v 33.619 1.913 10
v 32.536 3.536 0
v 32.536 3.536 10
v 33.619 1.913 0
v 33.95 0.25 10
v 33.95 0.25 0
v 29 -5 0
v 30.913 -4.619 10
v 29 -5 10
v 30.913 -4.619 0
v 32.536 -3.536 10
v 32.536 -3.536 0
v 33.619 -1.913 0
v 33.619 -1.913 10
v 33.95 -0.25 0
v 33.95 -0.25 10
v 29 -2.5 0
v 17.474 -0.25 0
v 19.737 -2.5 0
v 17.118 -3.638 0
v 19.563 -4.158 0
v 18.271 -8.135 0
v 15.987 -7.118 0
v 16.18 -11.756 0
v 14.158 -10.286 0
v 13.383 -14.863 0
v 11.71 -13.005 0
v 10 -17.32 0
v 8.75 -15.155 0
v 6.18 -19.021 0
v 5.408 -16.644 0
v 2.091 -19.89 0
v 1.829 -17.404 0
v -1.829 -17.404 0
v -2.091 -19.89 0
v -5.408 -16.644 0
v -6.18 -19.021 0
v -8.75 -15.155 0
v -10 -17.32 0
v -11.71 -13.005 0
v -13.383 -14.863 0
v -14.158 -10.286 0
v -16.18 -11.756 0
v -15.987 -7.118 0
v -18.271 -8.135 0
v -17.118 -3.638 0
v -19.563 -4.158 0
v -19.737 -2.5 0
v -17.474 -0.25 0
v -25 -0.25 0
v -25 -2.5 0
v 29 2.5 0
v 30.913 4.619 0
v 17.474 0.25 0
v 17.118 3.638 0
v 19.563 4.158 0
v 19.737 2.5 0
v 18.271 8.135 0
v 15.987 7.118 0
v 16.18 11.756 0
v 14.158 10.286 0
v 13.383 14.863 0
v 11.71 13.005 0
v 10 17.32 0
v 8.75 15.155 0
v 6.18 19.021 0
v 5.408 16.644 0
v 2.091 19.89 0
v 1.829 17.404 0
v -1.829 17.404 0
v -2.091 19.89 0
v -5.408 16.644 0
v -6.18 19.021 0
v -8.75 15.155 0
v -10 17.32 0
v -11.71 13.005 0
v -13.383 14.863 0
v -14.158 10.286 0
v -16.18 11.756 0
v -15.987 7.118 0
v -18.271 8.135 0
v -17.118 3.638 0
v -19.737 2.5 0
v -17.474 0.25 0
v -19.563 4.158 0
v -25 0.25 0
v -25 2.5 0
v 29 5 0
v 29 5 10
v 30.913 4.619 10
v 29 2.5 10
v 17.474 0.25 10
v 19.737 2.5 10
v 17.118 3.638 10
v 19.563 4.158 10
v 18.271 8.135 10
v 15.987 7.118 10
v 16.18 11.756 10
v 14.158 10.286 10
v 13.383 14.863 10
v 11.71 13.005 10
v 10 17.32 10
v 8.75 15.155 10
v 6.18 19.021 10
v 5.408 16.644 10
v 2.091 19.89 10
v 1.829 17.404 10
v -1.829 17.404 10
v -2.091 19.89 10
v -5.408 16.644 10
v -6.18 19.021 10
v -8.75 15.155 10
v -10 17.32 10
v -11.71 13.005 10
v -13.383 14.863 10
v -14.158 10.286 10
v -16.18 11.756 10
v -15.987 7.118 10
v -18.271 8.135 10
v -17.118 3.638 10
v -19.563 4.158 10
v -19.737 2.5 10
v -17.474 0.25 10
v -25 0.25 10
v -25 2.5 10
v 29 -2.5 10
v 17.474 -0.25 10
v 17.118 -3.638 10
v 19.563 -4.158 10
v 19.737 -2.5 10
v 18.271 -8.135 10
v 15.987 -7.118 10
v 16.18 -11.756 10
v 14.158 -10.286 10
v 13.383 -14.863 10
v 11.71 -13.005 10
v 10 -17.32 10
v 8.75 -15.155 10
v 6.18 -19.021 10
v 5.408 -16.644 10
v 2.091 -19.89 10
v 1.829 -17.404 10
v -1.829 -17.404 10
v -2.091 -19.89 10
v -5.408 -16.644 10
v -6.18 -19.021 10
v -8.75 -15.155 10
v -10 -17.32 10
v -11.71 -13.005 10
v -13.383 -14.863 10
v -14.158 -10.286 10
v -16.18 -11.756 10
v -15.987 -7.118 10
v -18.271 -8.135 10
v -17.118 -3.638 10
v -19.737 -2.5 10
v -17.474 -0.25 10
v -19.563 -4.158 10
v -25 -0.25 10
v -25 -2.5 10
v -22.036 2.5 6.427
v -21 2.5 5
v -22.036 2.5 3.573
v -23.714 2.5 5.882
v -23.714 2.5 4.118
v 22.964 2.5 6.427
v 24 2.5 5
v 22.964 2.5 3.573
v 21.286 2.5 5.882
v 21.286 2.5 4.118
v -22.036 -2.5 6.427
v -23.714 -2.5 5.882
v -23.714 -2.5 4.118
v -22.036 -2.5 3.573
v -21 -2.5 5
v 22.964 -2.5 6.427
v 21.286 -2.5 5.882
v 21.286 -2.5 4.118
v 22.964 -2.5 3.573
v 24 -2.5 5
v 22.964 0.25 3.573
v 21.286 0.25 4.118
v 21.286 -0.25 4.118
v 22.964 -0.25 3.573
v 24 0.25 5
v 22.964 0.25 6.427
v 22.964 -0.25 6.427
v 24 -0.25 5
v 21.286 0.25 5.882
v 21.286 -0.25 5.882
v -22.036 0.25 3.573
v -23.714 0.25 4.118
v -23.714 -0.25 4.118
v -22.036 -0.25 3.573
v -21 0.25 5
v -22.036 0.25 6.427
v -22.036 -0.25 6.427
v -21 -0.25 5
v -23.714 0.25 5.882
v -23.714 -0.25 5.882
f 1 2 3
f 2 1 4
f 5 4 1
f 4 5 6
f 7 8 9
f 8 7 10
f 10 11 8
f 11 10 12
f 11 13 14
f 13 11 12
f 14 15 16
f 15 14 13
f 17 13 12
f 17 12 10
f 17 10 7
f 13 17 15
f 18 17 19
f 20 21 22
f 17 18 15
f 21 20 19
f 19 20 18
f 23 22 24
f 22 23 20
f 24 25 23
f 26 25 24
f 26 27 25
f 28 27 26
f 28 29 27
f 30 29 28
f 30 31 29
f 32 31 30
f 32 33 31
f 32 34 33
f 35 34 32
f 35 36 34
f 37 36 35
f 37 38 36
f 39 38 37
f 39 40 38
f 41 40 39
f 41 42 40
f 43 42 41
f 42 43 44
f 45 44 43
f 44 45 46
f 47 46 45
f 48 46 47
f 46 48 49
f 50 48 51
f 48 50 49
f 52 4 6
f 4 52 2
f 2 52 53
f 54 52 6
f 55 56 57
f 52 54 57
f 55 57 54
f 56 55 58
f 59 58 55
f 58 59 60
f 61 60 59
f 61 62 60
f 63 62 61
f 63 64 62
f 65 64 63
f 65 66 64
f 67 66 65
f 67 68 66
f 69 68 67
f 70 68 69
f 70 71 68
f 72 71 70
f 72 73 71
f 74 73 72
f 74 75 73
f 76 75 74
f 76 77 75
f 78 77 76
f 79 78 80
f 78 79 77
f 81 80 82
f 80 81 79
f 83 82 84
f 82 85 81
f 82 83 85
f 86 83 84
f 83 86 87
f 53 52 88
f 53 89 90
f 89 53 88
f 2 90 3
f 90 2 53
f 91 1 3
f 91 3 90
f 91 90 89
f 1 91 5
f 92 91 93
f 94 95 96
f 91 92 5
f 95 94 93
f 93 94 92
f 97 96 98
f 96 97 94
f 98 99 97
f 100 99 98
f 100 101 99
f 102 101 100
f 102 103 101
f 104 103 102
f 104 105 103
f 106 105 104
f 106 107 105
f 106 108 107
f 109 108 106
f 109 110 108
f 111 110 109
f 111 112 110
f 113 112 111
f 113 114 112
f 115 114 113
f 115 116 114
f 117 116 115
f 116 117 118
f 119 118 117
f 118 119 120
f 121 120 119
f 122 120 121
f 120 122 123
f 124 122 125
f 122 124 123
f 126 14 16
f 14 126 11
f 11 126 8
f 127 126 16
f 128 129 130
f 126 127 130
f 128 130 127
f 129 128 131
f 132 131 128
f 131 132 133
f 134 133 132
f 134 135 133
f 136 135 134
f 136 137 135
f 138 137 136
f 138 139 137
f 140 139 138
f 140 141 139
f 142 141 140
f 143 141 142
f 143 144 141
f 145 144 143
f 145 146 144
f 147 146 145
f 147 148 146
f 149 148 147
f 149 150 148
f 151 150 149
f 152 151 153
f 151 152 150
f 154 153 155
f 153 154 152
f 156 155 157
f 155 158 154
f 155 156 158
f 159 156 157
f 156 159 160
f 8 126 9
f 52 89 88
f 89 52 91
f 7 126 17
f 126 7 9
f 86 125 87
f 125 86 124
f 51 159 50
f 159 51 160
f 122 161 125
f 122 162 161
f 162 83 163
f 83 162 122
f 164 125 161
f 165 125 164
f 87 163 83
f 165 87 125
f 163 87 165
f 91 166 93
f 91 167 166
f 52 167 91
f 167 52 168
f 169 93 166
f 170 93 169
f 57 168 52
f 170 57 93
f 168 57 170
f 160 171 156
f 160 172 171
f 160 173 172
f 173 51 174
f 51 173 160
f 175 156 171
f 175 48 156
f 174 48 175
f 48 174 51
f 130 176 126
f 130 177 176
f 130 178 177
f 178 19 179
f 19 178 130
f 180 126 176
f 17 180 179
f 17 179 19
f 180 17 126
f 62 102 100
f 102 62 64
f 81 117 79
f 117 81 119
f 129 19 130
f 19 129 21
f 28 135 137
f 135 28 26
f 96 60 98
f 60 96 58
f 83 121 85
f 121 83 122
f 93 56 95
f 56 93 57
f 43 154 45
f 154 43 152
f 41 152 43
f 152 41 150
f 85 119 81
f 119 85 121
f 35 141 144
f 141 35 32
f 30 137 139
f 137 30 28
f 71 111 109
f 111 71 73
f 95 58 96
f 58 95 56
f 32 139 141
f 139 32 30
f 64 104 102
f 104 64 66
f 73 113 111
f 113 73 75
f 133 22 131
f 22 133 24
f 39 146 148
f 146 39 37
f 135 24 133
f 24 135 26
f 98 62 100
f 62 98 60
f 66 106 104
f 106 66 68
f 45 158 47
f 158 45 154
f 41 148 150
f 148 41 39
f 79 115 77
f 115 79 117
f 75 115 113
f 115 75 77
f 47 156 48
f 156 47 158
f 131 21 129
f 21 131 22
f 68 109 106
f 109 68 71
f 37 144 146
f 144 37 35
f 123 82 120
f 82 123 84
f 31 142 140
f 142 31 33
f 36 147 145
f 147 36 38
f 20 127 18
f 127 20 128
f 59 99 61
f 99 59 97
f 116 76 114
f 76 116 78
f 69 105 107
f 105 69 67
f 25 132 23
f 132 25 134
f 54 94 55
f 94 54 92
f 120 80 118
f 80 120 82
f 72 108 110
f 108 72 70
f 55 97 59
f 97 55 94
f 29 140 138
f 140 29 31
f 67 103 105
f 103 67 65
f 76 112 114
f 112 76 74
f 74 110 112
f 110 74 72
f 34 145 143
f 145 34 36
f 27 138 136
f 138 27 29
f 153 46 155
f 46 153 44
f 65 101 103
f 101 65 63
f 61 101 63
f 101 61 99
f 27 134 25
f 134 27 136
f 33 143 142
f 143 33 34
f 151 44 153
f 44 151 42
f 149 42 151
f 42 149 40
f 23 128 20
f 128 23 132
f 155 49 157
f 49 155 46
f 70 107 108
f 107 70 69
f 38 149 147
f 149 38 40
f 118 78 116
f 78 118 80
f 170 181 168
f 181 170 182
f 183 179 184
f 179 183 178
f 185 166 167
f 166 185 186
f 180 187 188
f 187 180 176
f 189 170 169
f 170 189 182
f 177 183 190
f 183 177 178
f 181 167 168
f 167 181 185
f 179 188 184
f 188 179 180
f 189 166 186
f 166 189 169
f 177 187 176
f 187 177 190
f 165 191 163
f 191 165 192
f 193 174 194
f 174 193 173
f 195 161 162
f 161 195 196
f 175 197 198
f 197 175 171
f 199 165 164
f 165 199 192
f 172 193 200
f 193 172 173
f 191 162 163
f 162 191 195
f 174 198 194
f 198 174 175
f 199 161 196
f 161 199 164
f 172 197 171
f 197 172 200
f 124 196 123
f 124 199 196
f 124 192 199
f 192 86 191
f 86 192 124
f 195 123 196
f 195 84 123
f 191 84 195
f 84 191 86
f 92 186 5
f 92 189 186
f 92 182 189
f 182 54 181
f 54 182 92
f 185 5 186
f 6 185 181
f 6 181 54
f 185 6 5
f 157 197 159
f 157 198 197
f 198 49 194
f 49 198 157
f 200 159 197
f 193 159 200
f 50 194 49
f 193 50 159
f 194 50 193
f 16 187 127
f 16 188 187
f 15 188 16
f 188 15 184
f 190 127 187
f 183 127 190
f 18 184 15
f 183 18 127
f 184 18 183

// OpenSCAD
module halfCylinder(){
		difference(){
			cylinder(d=10,h=10);
			translate([-5,0,5]) cube([10,10,11],center=true);
		}
}

difference(){
	union(){
		translate([29,0,0]) halfCylinder();
		translate([2,0,5]) cube([54,5,10],center=true);
		cylinder(d=40,h=10);
	}

	translate([0,0,-50]) cylinder(d=35,h=100);
	translate([22.5,0,5]) rotate([90,0,0]) cylinder(d=3,h=10,center=true);
	translate([-22.5,0,5]) rotate([90,0,0]) cylinder(d=3,h=10,center=true);
	cube([70,0.5,70],center=true);
}
